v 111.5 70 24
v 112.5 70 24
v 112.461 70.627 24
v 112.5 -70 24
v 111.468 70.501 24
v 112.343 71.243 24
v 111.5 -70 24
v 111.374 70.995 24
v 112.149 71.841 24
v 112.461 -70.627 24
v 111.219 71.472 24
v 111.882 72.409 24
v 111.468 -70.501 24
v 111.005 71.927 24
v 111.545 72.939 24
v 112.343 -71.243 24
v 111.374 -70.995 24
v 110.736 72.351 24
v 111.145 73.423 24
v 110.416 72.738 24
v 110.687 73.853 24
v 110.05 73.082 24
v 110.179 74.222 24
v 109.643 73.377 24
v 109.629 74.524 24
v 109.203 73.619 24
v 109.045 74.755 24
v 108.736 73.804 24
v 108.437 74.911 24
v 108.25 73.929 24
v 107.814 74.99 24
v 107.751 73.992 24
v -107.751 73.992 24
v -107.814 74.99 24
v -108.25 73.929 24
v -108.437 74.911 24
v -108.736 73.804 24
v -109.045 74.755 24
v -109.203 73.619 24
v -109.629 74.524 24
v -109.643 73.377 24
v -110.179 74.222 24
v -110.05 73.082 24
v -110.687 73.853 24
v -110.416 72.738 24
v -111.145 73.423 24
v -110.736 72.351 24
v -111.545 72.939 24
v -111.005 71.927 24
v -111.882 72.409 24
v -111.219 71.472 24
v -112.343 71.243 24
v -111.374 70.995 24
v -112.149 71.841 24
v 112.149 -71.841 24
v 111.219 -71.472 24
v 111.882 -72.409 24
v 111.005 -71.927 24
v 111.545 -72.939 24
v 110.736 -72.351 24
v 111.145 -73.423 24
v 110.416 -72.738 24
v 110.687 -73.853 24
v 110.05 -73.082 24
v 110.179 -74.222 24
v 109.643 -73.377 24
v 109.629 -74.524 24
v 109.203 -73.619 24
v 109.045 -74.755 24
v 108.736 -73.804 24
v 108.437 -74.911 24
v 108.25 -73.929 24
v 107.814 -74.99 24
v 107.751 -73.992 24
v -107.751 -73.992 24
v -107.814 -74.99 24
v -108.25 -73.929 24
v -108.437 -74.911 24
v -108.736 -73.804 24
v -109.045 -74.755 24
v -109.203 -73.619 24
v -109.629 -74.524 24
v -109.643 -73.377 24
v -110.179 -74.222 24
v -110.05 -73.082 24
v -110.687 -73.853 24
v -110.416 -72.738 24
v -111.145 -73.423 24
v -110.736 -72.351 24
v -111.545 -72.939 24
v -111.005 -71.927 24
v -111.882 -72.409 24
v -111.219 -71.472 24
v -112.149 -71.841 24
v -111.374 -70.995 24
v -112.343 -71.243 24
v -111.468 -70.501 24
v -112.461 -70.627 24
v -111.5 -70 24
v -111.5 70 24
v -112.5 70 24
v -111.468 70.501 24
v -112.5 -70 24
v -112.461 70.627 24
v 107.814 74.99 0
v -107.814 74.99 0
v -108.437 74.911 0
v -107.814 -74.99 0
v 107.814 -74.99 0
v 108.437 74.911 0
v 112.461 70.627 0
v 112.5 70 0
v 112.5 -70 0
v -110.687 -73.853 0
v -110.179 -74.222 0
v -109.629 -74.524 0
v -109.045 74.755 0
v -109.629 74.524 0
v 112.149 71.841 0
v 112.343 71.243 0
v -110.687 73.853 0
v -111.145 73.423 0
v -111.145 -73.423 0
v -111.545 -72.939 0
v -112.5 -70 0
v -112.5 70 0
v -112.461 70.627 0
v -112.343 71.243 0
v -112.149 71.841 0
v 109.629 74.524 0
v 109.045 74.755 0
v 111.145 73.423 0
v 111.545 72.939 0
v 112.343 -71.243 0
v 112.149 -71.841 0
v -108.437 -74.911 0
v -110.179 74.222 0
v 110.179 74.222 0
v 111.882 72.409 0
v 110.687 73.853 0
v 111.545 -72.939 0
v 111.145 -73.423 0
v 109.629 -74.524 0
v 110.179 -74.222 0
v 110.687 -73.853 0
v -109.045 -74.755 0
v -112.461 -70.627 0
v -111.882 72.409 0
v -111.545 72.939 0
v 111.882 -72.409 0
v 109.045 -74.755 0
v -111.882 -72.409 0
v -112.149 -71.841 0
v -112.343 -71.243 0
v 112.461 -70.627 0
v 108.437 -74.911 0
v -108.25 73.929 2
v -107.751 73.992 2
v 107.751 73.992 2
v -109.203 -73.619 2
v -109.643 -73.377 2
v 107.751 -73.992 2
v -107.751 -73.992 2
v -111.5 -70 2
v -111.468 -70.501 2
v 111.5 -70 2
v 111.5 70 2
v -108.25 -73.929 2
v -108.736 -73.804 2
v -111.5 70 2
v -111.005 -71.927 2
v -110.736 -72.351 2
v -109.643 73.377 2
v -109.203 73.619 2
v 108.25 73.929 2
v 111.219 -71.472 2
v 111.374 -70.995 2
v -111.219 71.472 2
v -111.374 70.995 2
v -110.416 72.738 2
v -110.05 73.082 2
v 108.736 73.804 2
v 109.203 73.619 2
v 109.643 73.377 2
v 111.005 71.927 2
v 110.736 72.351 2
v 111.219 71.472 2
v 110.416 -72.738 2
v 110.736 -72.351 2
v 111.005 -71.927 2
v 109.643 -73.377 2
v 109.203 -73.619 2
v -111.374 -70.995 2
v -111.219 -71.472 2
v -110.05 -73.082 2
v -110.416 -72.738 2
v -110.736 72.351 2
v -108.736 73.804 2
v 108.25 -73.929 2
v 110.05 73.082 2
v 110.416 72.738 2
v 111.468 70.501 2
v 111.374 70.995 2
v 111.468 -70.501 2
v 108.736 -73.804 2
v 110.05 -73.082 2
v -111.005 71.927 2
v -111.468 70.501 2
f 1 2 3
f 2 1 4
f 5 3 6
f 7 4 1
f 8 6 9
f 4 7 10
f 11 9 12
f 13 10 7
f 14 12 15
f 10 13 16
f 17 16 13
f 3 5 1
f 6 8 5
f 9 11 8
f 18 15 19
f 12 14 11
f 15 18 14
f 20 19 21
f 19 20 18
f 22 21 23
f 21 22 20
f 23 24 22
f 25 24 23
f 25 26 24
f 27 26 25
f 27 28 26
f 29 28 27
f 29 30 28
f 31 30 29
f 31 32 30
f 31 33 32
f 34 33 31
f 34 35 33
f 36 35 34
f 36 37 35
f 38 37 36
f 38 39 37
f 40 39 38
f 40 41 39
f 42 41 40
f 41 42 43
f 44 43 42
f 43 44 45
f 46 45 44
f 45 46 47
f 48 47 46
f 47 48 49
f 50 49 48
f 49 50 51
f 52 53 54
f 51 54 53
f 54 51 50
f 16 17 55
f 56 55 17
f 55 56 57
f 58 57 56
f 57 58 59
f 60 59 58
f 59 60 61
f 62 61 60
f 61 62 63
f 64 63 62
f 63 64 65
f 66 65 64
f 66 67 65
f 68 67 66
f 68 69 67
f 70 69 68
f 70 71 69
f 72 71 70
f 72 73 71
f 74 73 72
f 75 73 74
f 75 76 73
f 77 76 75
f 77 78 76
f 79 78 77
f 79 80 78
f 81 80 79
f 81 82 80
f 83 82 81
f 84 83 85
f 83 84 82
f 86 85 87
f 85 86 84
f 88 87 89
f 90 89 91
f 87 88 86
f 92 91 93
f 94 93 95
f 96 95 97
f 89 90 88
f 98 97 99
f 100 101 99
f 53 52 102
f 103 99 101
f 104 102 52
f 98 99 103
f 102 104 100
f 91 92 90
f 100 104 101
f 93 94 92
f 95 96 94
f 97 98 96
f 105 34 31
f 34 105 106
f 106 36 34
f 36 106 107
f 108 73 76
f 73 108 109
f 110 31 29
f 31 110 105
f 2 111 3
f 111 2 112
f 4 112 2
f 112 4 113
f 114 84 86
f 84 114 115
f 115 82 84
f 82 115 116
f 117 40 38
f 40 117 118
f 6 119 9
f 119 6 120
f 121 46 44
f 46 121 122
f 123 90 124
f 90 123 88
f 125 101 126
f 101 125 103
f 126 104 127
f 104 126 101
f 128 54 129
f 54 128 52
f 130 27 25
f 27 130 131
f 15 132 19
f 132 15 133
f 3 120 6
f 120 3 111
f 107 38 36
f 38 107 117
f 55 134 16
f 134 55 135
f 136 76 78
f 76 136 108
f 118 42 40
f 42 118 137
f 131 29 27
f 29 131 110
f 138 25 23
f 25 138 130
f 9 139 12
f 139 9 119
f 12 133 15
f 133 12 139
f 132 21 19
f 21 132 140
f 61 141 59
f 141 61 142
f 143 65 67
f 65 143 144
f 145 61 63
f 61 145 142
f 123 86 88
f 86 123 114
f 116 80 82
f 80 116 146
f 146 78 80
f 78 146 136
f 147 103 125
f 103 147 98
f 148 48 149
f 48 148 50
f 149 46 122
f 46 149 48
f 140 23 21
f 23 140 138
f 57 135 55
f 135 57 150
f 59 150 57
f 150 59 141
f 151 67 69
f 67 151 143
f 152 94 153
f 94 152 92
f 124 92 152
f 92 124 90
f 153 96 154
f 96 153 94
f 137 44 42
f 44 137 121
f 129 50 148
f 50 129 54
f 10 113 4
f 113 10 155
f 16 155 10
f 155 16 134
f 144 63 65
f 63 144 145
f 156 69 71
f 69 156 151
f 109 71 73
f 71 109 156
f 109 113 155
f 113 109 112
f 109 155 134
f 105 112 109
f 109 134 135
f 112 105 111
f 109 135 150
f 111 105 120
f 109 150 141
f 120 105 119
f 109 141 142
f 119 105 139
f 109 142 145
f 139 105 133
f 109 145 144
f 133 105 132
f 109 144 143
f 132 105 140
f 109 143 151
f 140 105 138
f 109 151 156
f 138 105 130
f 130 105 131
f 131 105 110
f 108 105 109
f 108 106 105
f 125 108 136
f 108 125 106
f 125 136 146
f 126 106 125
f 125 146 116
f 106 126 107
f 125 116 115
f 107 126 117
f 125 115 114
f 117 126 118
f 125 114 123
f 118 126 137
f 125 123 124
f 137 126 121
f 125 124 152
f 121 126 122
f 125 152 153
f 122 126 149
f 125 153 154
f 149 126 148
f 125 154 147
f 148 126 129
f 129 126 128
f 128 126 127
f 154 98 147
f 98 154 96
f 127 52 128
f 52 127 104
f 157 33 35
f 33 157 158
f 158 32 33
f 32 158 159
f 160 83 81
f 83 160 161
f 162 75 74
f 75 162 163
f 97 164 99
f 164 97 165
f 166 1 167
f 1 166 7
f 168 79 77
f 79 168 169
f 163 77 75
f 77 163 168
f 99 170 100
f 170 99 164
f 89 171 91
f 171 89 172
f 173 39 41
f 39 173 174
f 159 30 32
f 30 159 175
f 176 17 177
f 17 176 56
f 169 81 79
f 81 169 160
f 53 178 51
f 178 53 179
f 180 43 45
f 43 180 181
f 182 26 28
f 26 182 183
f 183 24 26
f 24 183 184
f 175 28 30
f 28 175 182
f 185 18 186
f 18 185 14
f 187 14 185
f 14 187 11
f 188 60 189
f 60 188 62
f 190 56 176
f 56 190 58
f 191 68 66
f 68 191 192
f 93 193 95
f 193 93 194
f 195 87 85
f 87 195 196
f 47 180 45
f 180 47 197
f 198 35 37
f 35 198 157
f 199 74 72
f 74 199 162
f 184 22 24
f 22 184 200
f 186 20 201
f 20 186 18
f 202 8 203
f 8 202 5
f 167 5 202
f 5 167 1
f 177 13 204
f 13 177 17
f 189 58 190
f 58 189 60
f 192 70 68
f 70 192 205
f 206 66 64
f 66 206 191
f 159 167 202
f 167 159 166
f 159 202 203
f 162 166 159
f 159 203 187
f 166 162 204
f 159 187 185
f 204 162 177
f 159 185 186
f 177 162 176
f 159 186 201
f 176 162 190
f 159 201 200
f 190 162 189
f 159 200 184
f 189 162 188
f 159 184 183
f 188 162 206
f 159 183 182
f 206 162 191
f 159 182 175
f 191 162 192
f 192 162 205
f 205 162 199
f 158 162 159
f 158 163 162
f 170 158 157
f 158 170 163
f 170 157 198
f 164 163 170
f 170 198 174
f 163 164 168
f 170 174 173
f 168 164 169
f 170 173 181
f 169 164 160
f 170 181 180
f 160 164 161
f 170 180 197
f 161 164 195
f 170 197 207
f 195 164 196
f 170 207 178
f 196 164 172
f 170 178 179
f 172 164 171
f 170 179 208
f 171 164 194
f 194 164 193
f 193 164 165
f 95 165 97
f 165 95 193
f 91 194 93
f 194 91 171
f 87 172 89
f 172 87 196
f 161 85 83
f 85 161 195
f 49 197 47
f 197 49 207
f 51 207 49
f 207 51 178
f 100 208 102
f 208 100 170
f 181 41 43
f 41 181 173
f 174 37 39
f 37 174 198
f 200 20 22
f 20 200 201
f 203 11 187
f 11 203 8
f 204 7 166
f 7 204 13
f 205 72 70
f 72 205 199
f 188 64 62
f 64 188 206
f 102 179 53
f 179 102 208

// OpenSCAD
$fn = 50;


difference() {
	union() {
		hull() {
			translate(v = [-107.5000000000, 70.0000000000, 0]) {
				cylinder(h = 24, r = 5);
			}
			translate(v = [107.5000000000, 70.0000000000, 0]) {
				cylinder(h = 24, r = 5);
			}
			translate(v = [-107.5000000000, -70.0000000000, 0]) {
				cylinder(h = 24, r = 5);
			}
			translate(v = [107.5000000000, -70.0000000000, 0]) {
				cylinder(h = 24, r = 5);
			}
		}
	}
	union() {
		translate(v = [0, 0, 2]) {
			hull() {
				translate(v = [-107.5000000000, 70.0000000000, 0]) {
					cylinder(h = 22, r = 4);
				}
				translate(v = [107.5000000000, 70.0000000000, 0]) {
					cylinder(h = 22, r = 4);
				}
				translate(v = [-107.5000000000, -70.0000000000, 0]) {
					cylinder(h = 22, r = 4);
				}
				translate(v = [107.5000000000, -70.0000000000, 0]) {
					cylinder(h = 22, r = 4);
				}
			}
		}
	}
}
